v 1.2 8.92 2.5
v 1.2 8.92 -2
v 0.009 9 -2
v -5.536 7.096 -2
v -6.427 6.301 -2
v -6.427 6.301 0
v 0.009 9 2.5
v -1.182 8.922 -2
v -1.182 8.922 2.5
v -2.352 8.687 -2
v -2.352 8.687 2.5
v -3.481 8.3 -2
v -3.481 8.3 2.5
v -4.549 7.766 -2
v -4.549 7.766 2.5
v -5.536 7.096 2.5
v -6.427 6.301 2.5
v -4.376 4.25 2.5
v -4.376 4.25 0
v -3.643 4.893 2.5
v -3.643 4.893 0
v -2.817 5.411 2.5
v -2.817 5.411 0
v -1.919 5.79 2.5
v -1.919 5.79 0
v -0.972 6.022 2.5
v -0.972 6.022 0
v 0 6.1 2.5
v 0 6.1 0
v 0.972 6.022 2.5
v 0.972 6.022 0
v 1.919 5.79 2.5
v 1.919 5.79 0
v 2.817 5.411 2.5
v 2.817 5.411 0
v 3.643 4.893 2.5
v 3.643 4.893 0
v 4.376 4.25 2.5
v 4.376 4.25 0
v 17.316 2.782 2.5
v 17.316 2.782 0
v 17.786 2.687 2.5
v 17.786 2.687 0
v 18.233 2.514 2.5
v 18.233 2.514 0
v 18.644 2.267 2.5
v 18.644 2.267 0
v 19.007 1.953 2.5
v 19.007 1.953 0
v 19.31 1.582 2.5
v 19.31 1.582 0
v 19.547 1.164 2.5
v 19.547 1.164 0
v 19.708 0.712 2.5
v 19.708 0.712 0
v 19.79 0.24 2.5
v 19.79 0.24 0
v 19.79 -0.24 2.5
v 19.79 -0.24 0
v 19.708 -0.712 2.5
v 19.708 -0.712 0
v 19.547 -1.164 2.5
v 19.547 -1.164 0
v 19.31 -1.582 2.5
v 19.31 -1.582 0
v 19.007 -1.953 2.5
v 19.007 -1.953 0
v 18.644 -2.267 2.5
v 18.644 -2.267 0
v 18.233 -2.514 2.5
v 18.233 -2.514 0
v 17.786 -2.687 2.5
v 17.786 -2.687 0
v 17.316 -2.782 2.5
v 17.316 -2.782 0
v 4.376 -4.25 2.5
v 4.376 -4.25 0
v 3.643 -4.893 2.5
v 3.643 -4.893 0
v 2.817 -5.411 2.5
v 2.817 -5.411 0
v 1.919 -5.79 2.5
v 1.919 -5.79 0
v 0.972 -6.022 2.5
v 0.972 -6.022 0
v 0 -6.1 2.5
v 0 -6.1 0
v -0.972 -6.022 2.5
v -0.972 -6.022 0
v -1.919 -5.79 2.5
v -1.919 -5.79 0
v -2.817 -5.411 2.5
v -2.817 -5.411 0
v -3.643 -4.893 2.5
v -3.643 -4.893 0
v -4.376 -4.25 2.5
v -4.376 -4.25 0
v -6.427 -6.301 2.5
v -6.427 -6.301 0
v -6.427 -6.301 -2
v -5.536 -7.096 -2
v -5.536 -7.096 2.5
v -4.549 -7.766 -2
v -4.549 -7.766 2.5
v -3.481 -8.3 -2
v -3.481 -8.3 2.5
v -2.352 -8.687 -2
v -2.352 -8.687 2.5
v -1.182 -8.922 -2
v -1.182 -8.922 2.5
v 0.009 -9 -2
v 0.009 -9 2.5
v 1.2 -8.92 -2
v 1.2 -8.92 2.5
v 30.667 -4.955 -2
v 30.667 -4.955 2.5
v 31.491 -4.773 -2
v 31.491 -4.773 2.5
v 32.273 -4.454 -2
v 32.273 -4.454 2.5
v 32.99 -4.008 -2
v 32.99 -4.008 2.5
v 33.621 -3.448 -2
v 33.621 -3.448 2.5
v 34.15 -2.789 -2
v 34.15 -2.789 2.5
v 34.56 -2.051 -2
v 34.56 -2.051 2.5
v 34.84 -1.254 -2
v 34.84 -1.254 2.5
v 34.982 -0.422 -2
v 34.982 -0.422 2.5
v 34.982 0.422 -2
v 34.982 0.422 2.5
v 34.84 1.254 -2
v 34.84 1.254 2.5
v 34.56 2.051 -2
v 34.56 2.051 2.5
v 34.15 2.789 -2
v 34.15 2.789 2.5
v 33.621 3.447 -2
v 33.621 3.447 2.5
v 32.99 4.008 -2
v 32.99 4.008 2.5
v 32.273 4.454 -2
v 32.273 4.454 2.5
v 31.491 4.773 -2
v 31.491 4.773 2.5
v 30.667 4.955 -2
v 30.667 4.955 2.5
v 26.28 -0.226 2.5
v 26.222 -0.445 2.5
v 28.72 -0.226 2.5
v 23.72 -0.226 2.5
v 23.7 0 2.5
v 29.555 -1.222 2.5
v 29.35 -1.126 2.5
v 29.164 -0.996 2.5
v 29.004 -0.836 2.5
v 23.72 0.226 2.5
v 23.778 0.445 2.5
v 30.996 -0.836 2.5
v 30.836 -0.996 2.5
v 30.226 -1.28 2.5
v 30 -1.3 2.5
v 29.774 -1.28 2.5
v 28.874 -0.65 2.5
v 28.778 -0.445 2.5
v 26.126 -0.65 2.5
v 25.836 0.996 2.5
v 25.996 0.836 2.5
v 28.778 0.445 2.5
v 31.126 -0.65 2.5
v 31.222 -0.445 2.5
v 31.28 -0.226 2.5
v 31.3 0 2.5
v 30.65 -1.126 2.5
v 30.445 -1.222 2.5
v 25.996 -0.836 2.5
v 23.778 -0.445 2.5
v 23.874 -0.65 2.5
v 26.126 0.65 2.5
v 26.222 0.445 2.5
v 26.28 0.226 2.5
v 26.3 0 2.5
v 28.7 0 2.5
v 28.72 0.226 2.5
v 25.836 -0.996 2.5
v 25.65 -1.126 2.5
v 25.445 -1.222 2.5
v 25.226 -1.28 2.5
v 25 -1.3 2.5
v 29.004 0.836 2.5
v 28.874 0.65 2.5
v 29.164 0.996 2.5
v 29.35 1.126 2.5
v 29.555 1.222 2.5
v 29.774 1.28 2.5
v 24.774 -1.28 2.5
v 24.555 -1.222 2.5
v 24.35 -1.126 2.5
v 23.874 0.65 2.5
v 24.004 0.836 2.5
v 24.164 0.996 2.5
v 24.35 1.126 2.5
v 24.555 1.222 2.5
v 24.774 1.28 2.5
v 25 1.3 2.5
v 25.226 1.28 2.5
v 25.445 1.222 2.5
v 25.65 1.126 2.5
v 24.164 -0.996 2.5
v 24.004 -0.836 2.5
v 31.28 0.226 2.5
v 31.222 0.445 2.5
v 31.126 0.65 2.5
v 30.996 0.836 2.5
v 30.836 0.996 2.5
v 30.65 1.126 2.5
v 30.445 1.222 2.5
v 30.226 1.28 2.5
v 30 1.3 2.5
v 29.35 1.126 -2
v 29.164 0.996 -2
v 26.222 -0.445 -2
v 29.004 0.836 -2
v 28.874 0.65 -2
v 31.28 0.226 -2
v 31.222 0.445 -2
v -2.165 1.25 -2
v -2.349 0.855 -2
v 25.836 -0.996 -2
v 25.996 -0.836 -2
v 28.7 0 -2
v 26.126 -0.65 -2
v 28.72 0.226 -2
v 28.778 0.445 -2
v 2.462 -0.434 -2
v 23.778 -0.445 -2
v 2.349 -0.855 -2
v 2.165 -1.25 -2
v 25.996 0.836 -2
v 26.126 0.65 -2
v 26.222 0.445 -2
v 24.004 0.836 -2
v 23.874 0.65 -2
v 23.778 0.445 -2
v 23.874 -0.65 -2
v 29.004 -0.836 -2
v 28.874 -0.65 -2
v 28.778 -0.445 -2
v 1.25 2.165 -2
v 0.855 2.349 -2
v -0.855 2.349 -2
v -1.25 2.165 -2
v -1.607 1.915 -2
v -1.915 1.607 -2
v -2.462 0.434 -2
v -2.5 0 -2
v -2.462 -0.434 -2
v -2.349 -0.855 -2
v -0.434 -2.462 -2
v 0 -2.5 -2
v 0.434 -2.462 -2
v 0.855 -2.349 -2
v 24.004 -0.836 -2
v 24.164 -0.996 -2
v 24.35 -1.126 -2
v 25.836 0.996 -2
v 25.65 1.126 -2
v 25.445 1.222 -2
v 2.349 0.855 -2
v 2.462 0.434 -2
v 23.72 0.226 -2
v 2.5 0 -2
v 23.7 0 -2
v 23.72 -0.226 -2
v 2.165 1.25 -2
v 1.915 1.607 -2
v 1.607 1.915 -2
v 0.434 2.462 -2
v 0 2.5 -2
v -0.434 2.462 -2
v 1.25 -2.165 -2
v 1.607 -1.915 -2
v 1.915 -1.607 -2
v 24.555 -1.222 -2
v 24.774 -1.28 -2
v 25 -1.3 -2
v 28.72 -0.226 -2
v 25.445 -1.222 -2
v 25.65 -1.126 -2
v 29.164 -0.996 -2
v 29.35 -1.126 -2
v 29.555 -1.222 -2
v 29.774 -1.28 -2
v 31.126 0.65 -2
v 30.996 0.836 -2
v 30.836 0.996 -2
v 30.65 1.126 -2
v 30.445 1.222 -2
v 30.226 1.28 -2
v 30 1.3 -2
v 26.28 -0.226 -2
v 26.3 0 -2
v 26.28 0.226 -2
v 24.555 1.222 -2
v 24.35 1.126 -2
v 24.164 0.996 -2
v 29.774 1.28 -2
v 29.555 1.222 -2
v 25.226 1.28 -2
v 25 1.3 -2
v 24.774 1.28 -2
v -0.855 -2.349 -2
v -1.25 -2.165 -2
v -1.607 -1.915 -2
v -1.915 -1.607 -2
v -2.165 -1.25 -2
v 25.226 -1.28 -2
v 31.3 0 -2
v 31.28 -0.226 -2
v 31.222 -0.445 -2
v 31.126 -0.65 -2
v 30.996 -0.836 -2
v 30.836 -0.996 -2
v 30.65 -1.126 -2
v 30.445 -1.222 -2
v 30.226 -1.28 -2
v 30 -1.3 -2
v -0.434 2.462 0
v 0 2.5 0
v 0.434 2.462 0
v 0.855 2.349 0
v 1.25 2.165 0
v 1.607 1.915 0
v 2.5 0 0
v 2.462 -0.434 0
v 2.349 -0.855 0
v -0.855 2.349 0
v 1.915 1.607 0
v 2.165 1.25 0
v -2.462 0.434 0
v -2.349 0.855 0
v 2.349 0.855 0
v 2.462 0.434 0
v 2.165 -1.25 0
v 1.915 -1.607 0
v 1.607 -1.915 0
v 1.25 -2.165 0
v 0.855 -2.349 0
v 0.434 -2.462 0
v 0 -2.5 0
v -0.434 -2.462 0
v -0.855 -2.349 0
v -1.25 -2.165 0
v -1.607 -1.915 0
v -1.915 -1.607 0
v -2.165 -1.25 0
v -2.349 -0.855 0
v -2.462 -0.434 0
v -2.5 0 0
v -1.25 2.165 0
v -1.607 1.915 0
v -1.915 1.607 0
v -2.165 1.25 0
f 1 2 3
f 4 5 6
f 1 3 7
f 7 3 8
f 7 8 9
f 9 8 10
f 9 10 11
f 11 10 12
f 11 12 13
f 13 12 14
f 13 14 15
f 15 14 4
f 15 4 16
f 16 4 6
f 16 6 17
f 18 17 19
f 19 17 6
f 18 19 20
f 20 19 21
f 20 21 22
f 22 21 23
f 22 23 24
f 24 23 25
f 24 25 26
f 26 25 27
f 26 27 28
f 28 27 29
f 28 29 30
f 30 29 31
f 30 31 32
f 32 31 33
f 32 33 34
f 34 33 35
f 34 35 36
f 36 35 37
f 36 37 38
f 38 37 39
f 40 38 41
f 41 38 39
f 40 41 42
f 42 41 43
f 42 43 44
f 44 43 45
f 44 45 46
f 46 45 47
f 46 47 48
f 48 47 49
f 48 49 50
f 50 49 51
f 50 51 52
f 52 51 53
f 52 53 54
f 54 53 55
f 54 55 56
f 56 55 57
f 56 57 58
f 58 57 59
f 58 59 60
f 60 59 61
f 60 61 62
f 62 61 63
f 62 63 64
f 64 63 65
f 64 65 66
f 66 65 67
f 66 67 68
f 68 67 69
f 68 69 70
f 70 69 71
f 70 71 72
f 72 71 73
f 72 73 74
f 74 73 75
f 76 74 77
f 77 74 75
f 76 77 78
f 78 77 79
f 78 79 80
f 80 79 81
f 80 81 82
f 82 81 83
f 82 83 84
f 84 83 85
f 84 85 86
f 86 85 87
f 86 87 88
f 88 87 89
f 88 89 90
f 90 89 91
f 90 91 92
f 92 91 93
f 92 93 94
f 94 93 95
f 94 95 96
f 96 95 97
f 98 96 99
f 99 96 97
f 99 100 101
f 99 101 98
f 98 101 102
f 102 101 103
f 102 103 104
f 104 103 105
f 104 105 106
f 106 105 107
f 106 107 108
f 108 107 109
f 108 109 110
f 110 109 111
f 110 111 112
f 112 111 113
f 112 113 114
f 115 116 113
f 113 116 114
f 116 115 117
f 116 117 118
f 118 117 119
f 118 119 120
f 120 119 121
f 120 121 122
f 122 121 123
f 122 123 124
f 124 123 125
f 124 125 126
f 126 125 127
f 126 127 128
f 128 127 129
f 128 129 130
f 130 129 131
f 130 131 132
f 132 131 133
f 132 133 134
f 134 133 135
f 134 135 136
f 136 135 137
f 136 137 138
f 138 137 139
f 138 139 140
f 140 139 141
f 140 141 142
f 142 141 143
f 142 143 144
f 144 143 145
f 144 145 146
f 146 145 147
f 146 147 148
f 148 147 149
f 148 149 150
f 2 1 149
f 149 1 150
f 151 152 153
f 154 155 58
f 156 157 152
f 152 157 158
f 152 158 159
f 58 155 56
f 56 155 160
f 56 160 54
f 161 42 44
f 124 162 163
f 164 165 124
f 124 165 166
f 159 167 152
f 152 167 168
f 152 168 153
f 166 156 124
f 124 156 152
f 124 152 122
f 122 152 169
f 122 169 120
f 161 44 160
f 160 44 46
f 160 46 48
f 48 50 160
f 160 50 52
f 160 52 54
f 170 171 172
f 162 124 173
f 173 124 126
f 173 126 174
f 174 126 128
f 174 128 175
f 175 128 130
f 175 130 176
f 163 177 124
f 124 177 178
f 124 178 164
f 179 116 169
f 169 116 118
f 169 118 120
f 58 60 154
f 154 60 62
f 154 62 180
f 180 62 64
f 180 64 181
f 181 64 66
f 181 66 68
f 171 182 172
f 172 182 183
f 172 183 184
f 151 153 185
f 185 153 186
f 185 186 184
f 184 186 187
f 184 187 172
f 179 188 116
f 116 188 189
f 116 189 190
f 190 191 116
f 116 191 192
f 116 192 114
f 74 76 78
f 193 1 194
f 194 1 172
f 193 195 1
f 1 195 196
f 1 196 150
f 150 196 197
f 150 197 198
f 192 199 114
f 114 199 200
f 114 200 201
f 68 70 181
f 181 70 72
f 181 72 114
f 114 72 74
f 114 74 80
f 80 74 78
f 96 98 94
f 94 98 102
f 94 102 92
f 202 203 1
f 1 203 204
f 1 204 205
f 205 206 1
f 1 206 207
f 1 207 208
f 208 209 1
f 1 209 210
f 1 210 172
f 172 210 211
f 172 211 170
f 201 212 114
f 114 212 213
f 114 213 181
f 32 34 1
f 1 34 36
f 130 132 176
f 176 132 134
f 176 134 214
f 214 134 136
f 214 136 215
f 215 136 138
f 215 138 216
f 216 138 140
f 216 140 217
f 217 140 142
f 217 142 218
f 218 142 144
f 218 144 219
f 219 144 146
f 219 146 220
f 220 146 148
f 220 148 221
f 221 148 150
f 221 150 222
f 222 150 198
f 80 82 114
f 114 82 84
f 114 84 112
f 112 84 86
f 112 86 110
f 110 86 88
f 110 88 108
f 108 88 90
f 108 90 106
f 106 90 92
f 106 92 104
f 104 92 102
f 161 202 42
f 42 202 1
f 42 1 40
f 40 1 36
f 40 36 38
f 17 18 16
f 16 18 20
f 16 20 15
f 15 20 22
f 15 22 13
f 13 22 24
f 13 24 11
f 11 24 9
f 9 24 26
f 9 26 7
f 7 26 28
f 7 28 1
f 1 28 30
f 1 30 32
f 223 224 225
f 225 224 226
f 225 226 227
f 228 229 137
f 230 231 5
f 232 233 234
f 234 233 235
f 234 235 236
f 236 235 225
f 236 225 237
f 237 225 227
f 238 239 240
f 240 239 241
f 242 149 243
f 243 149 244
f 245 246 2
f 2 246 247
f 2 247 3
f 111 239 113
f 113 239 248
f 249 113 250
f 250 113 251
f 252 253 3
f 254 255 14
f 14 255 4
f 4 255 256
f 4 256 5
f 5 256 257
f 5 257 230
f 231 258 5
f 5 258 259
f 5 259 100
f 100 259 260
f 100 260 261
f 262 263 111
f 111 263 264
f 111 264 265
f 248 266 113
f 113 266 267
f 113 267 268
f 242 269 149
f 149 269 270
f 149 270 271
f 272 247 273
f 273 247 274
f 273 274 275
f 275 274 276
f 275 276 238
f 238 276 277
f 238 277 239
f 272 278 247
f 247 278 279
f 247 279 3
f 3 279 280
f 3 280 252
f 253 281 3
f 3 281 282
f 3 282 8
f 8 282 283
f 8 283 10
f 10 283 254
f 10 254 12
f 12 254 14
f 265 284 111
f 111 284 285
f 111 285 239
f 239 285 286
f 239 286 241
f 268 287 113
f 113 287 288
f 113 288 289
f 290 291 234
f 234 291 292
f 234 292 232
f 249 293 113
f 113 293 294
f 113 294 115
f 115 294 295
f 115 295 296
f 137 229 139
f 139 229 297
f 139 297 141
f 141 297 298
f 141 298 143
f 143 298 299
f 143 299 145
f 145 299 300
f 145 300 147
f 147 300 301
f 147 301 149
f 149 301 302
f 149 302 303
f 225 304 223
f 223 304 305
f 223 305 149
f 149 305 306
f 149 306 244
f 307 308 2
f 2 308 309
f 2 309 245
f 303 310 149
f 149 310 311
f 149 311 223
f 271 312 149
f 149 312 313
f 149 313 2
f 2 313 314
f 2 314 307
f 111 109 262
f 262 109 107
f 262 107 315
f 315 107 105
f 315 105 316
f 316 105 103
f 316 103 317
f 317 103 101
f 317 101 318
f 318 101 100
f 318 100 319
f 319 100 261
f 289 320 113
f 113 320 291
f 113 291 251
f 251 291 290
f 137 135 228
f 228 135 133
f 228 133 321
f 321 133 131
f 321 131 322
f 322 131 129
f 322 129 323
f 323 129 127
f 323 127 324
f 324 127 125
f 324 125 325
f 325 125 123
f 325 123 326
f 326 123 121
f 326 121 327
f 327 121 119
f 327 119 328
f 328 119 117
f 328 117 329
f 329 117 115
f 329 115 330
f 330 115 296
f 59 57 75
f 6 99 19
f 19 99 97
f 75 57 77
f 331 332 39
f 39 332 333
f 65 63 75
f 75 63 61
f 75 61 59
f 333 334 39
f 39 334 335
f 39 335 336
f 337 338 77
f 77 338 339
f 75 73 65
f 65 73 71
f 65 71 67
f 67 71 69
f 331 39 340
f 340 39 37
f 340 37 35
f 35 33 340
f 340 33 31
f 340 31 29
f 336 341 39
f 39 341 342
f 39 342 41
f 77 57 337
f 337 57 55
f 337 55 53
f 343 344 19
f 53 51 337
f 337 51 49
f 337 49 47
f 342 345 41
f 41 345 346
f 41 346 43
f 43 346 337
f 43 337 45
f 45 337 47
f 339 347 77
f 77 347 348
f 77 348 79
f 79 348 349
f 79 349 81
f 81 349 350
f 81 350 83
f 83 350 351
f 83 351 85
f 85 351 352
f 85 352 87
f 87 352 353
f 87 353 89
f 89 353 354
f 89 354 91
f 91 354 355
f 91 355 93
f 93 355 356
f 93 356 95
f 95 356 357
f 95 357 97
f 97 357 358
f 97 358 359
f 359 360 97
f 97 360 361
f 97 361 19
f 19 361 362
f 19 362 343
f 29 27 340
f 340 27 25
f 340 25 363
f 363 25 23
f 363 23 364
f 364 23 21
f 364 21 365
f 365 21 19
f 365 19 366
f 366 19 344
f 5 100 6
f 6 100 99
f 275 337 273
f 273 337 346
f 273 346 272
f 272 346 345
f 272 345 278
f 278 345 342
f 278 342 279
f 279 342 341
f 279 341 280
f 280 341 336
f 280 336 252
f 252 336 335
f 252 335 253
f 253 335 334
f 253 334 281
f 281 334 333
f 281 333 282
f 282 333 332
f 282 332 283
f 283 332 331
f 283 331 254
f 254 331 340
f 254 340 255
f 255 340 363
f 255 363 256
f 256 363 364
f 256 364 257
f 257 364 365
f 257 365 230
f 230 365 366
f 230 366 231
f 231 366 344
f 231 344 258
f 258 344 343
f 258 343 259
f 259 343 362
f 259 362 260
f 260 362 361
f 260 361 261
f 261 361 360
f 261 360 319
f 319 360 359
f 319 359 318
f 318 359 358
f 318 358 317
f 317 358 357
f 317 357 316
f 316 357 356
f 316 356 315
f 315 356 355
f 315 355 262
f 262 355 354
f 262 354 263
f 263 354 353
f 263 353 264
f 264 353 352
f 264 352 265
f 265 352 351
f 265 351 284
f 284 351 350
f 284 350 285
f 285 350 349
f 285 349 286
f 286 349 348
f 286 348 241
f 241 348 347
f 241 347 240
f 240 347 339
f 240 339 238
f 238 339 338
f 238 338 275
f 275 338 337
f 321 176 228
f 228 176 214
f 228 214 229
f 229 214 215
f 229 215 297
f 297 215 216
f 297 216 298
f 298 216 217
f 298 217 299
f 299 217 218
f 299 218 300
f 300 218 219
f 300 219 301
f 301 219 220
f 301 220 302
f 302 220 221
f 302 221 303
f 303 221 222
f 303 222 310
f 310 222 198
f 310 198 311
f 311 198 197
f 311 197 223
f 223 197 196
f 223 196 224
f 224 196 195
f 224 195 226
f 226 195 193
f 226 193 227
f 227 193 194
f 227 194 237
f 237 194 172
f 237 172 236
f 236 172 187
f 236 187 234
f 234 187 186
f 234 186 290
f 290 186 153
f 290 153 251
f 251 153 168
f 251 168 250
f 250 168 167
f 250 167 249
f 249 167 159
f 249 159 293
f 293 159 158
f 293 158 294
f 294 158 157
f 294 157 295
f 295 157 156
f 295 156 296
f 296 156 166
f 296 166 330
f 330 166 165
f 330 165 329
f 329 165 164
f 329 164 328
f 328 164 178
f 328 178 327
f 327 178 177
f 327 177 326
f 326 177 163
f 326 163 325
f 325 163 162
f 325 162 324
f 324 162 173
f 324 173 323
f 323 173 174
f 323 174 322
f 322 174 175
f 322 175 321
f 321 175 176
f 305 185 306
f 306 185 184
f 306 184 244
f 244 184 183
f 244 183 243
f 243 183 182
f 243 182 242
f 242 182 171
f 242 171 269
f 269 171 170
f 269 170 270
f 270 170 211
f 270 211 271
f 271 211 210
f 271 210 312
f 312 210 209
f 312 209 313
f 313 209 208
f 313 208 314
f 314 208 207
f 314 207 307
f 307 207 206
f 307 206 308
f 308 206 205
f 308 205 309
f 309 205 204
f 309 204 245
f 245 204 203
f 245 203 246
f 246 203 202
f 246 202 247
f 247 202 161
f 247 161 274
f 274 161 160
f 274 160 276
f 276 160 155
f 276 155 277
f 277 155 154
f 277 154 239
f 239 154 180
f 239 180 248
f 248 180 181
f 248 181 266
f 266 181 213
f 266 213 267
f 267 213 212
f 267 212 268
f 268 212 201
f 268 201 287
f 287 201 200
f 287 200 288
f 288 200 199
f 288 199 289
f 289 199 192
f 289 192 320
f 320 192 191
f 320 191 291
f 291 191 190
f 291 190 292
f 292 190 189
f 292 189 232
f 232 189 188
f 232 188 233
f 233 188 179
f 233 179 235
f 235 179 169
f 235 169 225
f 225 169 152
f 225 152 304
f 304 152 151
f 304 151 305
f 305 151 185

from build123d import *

# Parameters (mm, degrees)
MAIN_DEPTH            = 2.5
ESQUISSE2_R           = 2.5
ORIGINALBRACKET_DEPTH = 2
ESQUISSE3_R           = 1.3
FIXINGHOLE_DEPTH      = 5.5


with BuildPart() as part:
    # Esquisse1 → Main (new body)
    with BuildSketch(Plane.XY):
        with BuildLine():
            Line((-4.375785644, 4.25), (-6.426543071, 6.300757427))
            ThreePointArc((-6.426543071, 6.300757427), (-2.922982421, 8.512119229), (1.2, 8.919641248))
            Line((1.2, 8.919641248), (30.666666667, 4.955356249))
            ThreePointArc((30.666666667, 4.955356249), (35, 0), (30.666666667, -4.955356249))
            Line((30.666666667, -4.955356249), (1.2, -8.919641248))
            ThreePointArc((1.2, -8.919641248), (-2.922982421, -8.512119229), (-6.426543071, -6.300757427))
            Line((-6.426543071, -6.300757427), (-4.375785644, -4.25))
            ThreePointArc((-4.375785644, -4.25), (0, -6.1), (4.375785644, -4.25))
            Line((4.375785644, -4.25), (17.31559729, -2.78215714))
            ThreePointArc((17.31559729, -2.78215714), (19.8, 0), (17.31559729, 2.78215714))
            Line((17.31559729, 2.78215714), (4.375785644, 4.25))
            ThreePointArc((4.375785644, 4.25), (0, 6.1), (-4.375785644, 4.25))
        make_face()
    extrude(amount=MAIN_DEPTH)

    # Esquisse2 → OriginalBracket (add)
    with BuildSketch(Plane(origin=(0, 0, 0), x_dir=(-1, 0, 0), z_dir=(0, 0, -1))):
        with BuildLine():
            Line((-1.2, -8.919641248), (-30.666666667, -4.955356249))
            ThreePointArc((-30.666666667, -4.955356249), (-35, 0), (-30.666666667, 4.955356249))
            Line((-30.666666667, 4.955356249), (-1.2, 8.919641248))
            ThreePointArc((-1.2, 8.919641248), (2.922982421, 8.512119229), (6.426543071, 6.300757427))
            Line((6.426543071, 6.300757427), (6.426543071, -6.300757427))
            ThreePointArc((6.426543071, -6.300757427), (2.922982421, -8.512119229), (-1.2, -8.919641248))
        make_face()
        Circle(ESQUISSE2_R, mode=Mode.SUBTRACT)
    extrude(amount=ORIGINALBRACKET_DEPTH)

    # Esquisse3 → FixingHole (cut, through all)
    with BuildSketch(Plane.XY.offset(2.5)):
        with Locations((30, 0)):
            Circle(ESQUISSE3_R)
        with Locations((25, 0)):
            Circle(ESQUISSE3_R)
    extrude(amount=-FIXINGHOLE_DEPTH, mode=Mode.SUBTRACT)


solid = part.part
